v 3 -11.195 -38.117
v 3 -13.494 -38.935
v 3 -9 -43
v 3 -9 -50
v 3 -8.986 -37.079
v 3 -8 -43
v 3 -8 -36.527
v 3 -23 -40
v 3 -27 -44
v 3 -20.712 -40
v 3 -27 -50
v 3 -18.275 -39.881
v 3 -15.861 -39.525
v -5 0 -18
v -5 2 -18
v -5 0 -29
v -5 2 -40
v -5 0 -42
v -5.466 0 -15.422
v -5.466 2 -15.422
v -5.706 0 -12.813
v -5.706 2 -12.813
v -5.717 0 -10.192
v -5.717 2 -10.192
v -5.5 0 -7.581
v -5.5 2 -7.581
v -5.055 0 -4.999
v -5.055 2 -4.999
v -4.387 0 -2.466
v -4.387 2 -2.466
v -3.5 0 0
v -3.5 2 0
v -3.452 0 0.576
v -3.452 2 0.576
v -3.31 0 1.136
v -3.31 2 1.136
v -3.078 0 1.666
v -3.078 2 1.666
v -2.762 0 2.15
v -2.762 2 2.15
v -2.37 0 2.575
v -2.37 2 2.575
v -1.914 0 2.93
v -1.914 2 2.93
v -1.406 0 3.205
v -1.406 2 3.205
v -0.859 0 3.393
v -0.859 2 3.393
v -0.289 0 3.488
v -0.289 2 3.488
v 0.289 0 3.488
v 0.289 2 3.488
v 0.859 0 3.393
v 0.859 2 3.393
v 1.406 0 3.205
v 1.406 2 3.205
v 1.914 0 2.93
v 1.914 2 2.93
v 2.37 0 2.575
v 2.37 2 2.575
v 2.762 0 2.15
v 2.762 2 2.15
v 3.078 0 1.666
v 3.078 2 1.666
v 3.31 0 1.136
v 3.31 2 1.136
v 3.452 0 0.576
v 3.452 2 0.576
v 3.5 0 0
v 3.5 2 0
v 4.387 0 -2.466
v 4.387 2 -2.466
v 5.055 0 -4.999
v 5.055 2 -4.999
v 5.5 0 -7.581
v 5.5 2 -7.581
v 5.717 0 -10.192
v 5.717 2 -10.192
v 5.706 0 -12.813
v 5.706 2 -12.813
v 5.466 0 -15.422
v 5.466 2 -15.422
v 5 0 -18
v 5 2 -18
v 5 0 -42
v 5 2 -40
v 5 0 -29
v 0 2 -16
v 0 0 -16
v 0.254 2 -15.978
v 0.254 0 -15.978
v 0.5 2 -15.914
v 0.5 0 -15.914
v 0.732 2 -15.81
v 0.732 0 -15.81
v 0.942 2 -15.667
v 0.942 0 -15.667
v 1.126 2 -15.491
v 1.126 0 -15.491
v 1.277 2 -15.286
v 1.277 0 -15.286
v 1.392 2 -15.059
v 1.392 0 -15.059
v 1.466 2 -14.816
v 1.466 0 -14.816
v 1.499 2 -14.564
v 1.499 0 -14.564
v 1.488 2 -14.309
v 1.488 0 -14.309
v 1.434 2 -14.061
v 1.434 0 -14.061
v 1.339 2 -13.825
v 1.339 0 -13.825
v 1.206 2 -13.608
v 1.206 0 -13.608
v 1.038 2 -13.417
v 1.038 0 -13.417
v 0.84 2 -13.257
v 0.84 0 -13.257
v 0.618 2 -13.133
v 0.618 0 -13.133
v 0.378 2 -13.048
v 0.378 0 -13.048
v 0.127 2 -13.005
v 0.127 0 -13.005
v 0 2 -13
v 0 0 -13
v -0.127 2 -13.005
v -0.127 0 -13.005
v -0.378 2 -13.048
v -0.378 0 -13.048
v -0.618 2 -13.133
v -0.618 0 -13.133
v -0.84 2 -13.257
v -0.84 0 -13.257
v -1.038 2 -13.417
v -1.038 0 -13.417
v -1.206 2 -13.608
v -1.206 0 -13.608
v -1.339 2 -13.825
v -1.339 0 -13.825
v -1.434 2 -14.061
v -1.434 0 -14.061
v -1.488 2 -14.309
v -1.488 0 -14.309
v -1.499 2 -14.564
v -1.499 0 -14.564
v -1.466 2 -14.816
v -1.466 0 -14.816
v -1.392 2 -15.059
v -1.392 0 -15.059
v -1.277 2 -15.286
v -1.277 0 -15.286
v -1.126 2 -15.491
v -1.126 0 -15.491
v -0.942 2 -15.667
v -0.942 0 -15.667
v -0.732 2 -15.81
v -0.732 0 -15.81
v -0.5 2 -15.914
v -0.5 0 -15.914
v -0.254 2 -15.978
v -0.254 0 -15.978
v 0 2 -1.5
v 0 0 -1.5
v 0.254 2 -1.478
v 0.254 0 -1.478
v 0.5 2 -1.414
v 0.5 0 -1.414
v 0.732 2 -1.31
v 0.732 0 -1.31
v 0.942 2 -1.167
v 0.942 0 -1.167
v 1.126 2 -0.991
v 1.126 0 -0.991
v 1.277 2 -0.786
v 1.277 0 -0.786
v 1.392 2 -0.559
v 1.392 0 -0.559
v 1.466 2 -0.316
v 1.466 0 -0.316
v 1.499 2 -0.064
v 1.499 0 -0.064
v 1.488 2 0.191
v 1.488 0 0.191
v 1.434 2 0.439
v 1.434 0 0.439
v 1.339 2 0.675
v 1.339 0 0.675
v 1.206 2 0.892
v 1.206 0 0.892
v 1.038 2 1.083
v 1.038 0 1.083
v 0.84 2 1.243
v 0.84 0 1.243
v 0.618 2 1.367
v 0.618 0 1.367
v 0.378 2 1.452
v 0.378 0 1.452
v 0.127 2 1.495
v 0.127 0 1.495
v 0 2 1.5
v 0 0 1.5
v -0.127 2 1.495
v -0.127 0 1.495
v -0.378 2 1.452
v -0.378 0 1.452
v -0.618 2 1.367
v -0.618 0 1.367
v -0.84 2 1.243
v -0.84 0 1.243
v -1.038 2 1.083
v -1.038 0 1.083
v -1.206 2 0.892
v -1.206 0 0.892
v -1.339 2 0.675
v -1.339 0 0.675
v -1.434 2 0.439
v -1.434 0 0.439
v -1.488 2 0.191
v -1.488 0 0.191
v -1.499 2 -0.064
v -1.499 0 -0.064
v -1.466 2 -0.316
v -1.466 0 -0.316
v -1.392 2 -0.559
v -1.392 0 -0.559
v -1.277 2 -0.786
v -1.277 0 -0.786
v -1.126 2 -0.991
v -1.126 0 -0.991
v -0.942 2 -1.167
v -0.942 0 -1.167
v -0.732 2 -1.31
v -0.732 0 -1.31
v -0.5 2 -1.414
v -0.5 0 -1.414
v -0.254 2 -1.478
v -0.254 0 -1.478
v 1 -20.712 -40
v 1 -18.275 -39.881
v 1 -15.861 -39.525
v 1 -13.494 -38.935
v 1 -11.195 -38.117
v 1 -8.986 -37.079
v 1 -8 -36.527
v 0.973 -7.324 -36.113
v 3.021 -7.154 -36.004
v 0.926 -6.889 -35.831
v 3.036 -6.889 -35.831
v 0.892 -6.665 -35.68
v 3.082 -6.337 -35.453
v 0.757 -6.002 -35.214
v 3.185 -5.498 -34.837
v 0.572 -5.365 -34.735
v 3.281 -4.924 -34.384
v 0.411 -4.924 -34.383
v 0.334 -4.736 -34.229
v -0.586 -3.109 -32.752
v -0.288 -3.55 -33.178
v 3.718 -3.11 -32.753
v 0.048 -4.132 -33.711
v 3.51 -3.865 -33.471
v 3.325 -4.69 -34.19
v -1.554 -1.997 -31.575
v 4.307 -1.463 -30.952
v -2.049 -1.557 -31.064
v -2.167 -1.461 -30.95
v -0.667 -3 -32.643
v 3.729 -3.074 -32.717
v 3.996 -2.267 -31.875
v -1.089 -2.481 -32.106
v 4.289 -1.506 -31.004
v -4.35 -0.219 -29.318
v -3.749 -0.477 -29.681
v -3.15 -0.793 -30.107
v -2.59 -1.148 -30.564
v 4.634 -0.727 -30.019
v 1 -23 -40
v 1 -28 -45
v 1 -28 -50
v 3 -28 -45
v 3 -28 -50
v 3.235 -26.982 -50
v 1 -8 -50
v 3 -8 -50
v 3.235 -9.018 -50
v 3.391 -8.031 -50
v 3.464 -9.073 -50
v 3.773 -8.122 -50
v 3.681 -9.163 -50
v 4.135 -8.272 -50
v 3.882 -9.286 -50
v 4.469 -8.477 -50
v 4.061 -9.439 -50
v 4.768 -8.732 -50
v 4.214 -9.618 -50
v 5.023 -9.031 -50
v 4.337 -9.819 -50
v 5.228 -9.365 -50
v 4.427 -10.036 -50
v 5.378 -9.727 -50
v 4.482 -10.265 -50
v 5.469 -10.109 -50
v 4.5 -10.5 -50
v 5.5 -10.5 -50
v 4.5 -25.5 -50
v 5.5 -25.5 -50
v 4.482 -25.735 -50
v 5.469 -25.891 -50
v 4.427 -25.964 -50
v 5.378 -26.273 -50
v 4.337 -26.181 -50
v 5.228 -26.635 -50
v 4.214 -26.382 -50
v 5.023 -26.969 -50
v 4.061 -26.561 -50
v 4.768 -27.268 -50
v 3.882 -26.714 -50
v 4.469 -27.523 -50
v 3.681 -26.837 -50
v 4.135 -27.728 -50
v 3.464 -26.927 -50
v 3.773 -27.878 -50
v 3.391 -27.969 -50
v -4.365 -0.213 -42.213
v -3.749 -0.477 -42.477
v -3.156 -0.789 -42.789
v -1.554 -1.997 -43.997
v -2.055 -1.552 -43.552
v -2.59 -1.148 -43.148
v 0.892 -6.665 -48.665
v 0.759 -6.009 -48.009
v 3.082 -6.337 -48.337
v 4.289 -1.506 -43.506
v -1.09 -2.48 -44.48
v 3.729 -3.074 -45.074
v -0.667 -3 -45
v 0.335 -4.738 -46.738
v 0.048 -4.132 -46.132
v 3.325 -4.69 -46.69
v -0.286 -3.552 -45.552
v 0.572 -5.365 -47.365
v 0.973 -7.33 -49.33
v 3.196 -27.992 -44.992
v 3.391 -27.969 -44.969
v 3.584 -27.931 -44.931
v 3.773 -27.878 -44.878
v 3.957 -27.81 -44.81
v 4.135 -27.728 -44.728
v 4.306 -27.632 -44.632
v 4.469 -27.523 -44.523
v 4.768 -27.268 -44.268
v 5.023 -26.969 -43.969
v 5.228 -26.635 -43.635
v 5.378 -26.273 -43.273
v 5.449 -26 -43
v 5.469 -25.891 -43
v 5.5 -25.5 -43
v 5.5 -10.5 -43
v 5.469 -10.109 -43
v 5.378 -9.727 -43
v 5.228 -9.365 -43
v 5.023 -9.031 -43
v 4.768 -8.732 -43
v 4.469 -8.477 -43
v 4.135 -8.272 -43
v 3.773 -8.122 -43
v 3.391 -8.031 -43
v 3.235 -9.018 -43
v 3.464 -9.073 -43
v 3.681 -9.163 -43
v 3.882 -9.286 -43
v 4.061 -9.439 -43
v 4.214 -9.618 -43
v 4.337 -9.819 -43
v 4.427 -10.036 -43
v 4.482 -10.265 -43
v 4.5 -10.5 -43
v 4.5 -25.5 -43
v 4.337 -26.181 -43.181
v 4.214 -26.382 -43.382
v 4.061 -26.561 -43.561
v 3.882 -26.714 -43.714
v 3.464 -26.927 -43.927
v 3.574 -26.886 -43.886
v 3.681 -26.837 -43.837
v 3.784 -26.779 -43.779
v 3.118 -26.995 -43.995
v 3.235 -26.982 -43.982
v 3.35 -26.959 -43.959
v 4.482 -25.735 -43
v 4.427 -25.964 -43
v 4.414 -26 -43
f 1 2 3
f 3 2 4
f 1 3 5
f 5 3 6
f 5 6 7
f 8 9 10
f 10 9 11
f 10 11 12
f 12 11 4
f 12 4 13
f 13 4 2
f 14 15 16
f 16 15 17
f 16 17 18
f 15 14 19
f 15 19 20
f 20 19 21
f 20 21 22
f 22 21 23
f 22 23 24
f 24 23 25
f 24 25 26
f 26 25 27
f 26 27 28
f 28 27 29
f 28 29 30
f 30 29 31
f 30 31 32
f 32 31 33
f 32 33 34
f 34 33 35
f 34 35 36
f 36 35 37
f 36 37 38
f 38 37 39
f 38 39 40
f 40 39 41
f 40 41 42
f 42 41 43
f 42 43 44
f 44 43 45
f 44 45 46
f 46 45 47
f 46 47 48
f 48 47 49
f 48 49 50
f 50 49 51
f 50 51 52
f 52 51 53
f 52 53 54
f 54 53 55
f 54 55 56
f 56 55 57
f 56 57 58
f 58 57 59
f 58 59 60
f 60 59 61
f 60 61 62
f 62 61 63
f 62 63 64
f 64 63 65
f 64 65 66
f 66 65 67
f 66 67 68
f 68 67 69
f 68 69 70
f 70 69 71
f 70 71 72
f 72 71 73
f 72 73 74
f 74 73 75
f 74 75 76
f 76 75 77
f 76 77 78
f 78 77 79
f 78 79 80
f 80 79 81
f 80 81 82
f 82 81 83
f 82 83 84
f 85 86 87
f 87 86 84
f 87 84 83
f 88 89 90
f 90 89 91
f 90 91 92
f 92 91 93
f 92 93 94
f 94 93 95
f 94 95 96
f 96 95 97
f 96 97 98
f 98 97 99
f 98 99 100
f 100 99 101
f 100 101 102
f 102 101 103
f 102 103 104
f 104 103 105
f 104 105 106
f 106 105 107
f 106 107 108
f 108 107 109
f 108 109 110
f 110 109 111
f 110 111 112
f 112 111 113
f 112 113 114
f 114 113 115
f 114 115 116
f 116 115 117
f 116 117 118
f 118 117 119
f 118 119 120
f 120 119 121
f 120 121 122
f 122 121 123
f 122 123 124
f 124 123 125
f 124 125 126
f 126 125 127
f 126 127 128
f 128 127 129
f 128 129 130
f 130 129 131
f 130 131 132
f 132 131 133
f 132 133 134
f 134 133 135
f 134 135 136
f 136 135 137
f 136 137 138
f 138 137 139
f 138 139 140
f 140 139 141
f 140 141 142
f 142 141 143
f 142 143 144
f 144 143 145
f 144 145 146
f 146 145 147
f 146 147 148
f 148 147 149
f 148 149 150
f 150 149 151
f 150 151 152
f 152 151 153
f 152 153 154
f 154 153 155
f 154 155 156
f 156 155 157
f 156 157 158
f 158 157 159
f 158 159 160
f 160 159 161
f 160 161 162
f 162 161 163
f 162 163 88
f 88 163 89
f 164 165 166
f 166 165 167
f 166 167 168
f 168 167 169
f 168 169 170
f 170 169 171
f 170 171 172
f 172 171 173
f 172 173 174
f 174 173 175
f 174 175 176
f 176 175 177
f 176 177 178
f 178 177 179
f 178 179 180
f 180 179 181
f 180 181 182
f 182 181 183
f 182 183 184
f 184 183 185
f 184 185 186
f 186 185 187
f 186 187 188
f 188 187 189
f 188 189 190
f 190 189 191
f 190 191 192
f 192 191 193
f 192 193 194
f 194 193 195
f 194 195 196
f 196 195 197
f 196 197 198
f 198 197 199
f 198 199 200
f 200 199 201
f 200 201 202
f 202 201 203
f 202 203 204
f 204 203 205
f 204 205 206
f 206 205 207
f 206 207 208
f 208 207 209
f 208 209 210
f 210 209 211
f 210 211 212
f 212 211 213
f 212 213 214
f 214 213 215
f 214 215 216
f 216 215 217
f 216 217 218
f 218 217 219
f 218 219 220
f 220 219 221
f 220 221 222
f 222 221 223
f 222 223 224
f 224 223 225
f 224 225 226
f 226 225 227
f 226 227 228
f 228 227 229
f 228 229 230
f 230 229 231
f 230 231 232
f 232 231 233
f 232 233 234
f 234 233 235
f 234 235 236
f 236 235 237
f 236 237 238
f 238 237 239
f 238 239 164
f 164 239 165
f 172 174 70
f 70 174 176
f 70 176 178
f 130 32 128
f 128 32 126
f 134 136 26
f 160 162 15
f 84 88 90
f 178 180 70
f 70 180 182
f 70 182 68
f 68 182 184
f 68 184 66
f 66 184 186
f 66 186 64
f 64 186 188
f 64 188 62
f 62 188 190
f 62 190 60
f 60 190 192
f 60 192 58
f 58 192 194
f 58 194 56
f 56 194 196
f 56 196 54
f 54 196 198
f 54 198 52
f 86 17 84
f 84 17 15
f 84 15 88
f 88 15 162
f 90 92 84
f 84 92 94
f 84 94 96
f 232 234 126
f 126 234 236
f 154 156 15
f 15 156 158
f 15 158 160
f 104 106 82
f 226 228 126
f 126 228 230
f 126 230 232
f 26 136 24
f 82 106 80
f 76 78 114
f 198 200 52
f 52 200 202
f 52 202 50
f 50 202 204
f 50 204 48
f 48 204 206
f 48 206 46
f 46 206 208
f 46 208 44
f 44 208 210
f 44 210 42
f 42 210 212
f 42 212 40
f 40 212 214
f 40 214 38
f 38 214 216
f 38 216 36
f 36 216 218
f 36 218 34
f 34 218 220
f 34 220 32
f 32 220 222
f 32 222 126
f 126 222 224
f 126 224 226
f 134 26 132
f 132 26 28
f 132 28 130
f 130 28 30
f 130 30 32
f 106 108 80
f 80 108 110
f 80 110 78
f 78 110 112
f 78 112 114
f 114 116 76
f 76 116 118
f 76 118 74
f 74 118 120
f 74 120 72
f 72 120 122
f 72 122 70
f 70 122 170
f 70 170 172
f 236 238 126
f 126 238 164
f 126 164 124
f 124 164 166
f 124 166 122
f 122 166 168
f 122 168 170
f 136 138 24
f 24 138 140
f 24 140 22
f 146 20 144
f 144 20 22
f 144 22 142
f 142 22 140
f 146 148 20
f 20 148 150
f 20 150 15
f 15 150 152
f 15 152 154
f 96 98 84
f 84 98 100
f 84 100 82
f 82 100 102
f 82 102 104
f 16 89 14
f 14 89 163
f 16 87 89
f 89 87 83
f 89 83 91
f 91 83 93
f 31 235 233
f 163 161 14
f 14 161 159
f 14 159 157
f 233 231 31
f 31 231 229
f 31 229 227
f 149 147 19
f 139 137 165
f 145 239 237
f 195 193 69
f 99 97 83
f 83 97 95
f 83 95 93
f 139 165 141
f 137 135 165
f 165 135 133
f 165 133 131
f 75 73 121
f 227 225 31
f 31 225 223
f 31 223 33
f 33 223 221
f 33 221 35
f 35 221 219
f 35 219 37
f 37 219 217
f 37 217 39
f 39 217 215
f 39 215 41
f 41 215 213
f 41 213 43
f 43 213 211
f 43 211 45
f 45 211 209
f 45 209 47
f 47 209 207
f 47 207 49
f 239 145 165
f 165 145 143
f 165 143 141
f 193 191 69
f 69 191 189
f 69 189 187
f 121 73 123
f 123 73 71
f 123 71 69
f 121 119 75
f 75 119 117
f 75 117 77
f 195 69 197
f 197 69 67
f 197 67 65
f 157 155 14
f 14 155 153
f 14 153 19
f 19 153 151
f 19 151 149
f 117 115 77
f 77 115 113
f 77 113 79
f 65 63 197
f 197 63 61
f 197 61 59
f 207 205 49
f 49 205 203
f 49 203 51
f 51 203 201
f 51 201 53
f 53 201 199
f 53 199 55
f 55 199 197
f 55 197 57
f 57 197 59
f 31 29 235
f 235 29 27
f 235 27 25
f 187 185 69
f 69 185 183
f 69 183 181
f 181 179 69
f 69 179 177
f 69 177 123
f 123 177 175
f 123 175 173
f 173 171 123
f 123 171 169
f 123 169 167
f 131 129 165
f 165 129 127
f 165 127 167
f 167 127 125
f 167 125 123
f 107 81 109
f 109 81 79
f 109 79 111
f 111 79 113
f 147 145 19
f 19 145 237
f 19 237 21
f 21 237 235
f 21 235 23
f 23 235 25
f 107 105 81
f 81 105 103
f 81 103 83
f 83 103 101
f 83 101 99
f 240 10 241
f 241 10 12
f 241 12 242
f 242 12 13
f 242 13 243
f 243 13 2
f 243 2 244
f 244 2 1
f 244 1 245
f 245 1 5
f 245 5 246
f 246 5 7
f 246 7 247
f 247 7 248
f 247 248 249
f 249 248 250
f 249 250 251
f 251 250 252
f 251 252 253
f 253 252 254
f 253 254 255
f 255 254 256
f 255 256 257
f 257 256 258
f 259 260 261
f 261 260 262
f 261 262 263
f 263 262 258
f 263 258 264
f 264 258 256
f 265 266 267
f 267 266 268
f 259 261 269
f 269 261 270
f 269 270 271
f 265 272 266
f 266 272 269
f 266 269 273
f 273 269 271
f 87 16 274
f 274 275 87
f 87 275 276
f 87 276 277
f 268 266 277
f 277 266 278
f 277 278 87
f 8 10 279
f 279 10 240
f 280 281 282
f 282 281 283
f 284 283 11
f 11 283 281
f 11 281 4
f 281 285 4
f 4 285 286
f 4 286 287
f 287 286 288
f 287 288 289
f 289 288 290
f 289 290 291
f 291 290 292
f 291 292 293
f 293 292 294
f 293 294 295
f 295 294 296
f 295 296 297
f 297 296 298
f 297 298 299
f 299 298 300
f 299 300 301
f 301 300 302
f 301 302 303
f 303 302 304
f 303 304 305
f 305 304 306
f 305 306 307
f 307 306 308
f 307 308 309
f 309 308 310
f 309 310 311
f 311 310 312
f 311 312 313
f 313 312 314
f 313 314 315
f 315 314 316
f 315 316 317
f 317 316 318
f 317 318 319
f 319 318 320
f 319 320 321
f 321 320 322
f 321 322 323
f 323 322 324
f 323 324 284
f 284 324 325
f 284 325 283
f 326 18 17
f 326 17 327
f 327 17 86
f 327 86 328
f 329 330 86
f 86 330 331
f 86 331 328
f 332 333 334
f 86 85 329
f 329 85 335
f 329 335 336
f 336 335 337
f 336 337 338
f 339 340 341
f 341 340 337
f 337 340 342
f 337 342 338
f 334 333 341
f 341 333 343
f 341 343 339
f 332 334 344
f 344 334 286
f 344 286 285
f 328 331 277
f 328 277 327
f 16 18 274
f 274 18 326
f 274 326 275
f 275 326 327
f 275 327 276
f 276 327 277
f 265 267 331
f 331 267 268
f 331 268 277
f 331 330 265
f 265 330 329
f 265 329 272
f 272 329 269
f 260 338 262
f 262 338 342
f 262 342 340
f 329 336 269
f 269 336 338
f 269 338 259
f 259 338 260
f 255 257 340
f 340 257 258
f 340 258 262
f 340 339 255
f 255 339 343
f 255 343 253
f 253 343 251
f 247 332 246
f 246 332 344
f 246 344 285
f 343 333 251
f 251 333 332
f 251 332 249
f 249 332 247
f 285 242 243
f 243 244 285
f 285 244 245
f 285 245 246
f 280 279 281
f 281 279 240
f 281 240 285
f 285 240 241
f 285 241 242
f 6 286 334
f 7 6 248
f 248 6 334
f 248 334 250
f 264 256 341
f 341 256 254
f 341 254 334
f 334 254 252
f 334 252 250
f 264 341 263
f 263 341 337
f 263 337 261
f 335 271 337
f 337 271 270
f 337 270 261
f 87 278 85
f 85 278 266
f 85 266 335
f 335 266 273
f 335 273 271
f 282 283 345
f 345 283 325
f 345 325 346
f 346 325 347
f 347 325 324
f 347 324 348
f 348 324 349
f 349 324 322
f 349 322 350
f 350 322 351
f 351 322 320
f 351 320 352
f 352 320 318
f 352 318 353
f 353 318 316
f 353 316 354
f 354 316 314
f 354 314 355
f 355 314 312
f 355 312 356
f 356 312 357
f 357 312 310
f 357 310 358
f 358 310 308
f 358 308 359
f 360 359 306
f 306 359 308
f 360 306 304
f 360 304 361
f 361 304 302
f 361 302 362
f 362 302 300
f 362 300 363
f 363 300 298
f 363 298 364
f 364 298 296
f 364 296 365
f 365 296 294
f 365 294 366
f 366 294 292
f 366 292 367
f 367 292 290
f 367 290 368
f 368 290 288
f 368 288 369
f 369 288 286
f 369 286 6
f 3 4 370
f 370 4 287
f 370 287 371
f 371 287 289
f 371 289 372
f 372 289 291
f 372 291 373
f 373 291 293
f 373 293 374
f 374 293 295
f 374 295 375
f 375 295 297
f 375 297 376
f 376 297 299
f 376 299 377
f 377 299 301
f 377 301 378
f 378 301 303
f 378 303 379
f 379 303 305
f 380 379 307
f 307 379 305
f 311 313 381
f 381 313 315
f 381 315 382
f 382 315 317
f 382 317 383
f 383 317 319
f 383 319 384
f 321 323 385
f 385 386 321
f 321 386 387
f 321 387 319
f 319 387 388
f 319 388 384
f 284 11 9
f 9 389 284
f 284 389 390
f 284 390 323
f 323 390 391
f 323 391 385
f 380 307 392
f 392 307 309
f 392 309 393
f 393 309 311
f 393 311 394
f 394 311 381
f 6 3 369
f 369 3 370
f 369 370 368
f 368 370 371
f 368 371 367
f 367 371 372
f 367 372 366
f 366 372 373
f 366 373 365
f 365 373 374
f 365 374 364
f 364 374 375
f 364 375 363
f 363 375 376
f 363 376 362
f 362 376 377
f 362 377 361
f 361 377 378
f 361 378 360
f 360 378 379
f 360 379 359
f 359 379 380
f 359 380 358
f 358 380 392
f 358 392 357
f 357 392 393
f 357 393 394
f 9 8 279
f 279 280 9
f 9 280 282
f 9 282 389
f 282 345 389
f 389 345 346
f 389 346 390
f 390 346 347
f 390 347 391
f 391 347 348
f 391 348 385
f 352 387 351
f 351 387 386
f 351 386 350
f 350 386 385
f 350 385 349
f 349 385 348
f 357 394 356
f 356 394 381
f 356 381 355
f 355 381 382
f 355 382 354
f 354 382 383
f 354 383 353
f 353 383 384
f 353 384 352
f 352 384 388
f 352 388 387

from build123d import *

# Parameters (mm, degrees)
SKETCH1_W           = 10
SKETCH1_H           = 22
SKETCH1_R           = 1.5
SKETCH1_R_2         = 3.5
BOSS_EXTRUDE1_DEPTH = 2
BOSS_EXTRUDE2_DEPTH = 10
CUT_EXTRUDE1_REACH  = 62.656
BOSS_EXTRUDE3_DEPTH = 7
CHAMFER1_SIZE       = 5


with BuildPart() as part:
    # Sketch1 → Boss-Extrude1 (new body)
    # profile 1 of 3: a face of its own
    with BuildSketch(Plane(origin=(0, 0, 0), x_dir=(1, 0, 0), z_dir=(0, 1, 0))):
        with Locations((0, 29)):
            Rectangle(SKETCH1_W, SKETCH1_H)
    # profile 2 of 3: a face of its own
    with BuildSketch(Plane(origin=(0, 0, 0), x_dir=(1, 0, 0), z_dir=(0, 1, 0))):
        with BuildLine():
            Line((5, 18), (-5, 18))
            ThreePointArc((-5, 18), (-5.636846209, 8.884429483), (-3.5, 0))
            ThreePointArc((-3.5, 0), (0, 3.5), (3.5, 0))
            ThreePointArc((3.5, 0), (5.636846209, 8.884429483), (5, 18))
        make_face()
        with Locations(Location((0, 14.5, 0), (0, 0, 270))):
            Circle(SKETCH1_R, mode=Mode.SUBTRACT)
    # profile 3 of 3: a face of its own
    with BuildSketch(Plane(origin=(0, 0, 0), x_dir=(1, 0, 0), z_dir=(0, 1, 0))):
        Circle(SKETCH1_R_2)
        with Locations(Location((0, 0, 0), (0, 0, 270))):
            Circle(SKETCH1_R, mode=Mode.SUBTRACT)
    extrude(amount=BOSS_EXTRUDE1_DEPTH)

    # Sketch2 → Boss-Extrude2 (add)
    with BuildSketch(Plane.ZY.offset(5)):
        with BuildLine():
            Line((-40, 2), (-50, -8))
            Line((-50, -8), (-50, -28))
            Line((-50, -28), (-40, -28))
            Line((-40, -28), (-40, -20.712315177))
            ThreePointArc((-40, -20.712315177), (-37.079402166, -8.986275778), (-29, 0))
            Line((-29, 0), (-40, 2))
        make_face()
    extrude(amount=-BOSS_EXTRUDE2_DEPTH)

    # Sketch3 → Cut-Extrude1 (cut, up to next)
    with BuildSketch(Plane(origin=(0, 0, -50), x_dir=(-1, 0, 0), z_dir=(0, 0, -1)), mode=Mode.PRIVATE) as cut_extrude1_sk1:
        with BuildLine():
            Line((-3, -8), (-3, -28))
            Line((-3, -28), (-5, -28))
            Line((-5, -28), (-5, 0))
            ThreePointArc((-5, 0), (-3.507577498, -3.876894374), (-3, -8))
        make_face()
    cut_extrude1_tool1 = extrude(cut_extrude1_sk1.sketch, amount=-CUT_EXTRUDE1_REACH, mode=Mode.PRIVATE) & part.part
    # Sketch3 → Cut-Extrude1 (cut, up to next)
    with BuildSketch(Plane(origin=(0, 0, -50), x_dir=(-1, 0, 0), z_dir=(0, 0, -1)), mode=Mode.PRIVATE) as cut_extrude1_sk2:
        with BuildLine():
            Line((-1, -8), (-1, -28))
            Line((-1, -28), (5, -28))
            Line((5, -28), (5, 0))
            ThreePointArc((5, 0), (0.666666667, -3), (-1, -8))
        make_face()
    cut_extrude1_tool2 = extrude(cut_extrude1_sk2.sketch, amount=-CUT_EXTRUDE1_REACH, mode=Mode.PRIVATE) & part.part
    add(cut_extrude1_tool1.solids().sort_by_distance((4.041628, -15.231137, -50))[0], mode=Mode.SUBTRACT)
    add(cut_extrude1_tool2.solids().sort_by_distance((-2.115152, -14.990475, -50))[0], mode=Mode.SUBTRACT)

    # Sketch4 → Boss-Extrude3 (add)
    with BuildSketch(Plane(origin=(0, 0, -50), x_dir=(-1, 0, 0), z_dir=(0, 0, -1))):
        with BuildLine():
            ThreePointArc((-3, -8), (-4.767766953, -8.732233047), (-5.5, -10.5))
            Line((-5.5, -10.5), (-5.5, -25.5))
            ThreePointArc((-5.5, -25.5), (-4.767766953, -27.267766953), (-3, -28))
            Line((-3, -28), (-3, -27))
            ThreePointArc((-3, -27), (-4.060660172, -26.560660172), (-4.5, -25.5))
            Line((-4.5, -25.5), (-4.5, -10.5))
            ThreePointArc((-4.5, -10.5), (-4.060660172, -9.439339828), (-3, -9))
            Line((-3, -9), (-3, -8))
        make_face()
    extrude(amount=-BOSS_EXTRUDE3_DEPTH)

    # Chamfer1
    # the kernel refuses this chamfer: 5 mm, written as the material it takes off along each edge
    with BuildSketch(Plane(origin=(-11.85841494, -28, -40), x_dir=(0, 0.9996219169112968, 0.027495876610586317), z_dir=(1, 0, 0))) as chamfer1_piece_1:
        Polygon((CHAMFER1_SIZE * 0.999621916911, -CHAMFER1_SIZE * 0.0274958766106), (-CHAMFER1_SIZE * 0.0274958766106, -CHAMFER1_SIZE * 0.999621916911), (0, 0), align=None)
    extrude(amount=27.71682988, mode=Mode.SUBTRACT)


solid = part.part
